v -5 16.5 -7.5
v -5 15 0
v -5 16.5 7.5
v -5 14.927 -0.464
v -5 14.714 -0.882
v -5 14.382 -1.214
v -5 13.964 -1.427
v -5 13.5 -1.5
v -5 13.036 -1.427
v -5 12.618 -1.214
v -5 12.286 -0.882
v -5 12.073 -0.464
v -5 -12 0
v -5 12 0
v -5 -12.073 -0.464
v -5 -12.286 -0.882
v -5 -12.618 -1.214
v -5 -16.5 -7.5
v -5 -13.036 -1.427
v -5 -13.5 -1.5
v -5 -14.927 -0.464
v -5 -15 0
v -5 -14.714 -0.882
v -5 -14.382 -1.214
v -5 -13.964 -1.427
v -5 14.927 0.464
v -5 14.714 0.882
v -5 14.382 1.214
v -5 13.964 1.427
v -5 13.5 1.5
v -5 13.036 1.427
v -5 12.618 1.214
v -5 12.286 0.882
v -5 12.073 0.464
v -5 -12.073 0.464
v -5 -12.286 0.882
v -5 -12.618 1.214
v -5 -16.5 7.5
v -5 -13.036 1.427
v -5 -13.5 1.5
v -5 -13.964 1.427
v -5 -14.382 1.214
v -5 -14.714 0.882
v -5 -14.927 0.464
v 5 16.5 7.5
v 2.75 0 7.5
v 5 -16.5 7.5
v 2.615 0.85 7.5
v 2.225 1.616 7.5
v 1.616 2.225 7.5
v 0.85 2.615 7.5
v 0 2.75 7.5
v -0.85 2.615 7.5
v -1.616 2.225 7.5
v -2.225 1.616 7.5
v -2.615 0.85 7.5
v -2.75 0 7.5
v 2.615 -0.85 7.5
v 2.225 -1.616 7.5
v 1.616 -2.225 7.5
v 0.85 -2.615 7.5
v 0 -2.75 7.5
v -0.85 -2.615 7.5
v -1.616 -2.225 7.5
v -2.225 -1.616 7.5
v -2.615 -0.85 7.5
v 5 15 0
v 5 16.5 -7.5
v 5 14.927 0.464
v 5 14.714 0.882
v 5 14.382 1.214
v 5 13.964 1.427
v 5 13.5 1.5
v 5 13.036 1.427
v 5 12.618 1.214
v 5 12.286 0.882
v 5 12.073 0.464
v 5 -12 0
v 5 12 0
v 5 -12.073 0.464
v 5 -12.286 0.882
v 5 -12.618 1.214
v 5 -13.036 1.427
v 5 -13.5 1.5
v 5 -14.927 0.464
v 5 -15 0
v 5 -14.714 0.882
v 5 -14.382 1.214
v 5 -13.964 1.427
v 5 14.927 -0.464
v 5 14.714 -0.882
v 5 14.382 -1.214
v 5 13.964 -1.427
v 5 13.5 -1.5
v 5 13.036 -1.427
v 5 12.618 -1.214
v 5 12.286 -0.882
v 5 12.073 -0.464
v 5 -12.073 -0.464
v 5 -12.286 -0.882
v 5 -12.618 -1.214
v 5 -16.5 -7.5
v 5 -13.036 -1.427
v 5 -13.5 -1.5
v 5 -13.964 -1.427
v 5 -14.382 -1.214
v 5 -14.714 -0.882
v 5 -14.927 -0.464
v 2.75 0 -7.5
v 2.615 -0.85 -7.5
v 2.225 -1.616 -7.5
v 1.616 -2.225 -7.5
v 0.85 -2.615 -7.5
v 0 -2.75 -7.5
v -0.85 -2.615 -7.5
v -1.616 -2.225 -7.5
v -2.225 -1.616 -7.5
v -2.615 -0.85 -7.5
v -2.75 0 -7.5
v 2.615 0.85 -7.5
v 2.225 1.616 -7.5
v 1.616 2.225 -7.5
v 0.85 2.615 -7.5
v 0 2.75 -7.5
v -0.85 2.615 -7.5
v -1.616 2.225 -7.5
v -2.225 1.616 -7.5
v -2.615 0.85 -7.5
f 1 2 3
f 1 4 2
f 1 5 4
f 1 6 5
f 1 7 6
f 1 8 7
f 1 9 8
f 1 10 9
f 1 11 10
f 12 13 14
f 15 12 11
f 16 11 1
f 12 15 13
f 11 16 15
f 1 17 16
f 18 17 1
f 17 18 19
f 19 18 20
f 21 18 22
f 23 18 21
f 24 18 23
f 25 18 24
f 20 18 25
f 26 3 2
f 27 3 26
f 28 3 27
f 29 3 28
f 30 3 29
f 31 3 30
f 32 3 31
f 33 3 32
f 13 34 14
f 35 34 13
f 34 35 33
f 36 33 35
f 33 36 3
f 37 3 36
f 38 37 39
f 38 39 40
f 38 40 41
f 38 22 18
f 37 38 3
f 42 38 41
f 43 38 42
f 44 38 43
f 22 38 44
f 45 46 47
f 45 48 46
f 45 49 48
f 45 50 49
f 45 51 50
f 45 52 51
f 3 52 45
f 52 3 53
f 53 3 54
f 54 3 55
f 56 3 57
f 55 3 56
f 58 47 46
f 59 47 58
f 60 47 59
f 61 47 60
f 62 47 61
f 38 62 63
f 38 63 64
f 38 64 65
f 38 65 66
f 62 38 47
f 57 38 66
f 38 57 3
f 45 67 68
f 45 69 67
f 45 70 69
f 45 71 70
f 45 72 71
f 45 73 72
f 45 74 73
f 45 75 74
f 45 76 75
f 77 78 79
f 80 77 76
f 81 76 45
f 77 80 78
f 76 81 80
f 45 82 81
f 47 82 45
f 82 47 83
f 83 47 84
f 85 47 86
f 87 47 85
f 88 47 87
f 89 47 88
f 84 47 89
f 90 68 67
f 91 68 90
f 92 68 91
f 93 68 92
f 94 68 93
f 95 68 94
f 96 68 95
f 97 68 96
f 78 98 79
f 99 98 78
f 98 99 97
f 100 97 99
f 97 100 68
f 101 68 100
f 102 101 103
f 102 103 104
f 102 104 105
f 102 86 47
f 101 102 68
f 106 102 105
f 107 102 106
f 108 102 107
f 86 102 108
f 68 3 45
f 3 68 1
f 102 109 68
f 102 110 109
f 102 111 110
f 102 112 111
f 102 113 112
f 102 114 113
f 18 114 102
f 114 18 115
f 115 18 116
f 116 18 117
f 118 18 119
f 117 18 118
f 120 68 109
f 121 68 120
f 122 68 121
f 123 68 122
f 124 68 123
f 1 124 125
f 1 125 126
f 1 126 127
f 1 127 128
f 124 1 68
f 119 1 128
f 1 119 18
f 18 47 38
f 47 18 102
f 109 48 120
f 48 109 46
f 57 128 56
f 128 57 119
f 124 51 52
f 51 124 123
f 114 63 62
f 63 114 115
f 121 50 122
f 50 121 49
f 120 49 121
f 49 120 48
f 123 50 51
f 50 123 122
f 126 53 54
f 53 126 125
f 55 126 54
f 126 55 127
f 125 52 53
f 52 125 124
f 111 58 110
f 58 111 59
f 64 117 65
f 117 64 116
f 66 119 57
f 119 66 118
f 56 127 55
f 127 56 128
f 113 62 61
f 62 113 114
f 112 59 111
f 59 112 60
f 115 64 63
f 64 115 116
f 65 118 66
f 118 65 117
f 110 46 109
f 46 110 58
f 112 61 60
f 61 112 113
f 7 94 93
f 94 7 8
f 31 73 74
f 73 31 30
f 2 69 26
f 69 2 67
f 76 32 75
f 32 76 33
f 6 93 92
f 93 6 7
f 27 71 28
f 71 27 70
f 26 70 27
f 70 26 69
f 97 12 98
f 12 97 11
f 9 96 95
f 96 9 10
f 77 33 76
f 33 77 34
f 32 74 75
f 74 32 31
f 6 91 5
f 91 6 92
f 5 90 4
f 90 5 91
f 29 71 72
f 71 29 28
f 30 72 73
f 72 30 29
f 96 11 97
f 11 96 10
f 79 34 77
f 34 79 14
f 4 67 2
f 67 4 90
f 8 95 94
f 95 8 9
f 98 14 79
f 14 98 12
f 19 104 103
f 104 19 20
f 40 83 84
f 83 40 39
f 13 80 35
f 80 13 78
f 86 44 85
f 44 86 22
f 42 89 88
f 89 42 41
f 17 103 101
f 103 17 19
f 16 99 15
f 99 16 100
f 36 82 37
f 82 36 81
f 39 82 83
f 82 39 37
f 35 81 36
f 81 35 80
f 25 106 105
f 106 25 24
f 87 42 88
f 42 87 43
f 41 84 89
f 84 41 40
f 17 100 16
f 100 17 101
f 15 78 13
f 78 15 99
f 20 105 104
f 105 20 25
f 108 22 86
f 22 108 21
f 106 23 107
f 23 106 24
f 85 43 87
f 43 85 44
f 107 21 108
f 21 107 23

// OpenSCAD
$fn=20;
difference()
{
    cube([10,33,15],true);
    translate([0,0,-15/2])cylinder(h=15,r=5.5/2);
    translate([-10/2,33/2-3,0])rotate([0,90,0])cylinder(h=10,r=3/2);
    translate([-10/2,-(33/2-3),0])rotate([0,90,0])cylinder(h=10,r=3/2);
}
